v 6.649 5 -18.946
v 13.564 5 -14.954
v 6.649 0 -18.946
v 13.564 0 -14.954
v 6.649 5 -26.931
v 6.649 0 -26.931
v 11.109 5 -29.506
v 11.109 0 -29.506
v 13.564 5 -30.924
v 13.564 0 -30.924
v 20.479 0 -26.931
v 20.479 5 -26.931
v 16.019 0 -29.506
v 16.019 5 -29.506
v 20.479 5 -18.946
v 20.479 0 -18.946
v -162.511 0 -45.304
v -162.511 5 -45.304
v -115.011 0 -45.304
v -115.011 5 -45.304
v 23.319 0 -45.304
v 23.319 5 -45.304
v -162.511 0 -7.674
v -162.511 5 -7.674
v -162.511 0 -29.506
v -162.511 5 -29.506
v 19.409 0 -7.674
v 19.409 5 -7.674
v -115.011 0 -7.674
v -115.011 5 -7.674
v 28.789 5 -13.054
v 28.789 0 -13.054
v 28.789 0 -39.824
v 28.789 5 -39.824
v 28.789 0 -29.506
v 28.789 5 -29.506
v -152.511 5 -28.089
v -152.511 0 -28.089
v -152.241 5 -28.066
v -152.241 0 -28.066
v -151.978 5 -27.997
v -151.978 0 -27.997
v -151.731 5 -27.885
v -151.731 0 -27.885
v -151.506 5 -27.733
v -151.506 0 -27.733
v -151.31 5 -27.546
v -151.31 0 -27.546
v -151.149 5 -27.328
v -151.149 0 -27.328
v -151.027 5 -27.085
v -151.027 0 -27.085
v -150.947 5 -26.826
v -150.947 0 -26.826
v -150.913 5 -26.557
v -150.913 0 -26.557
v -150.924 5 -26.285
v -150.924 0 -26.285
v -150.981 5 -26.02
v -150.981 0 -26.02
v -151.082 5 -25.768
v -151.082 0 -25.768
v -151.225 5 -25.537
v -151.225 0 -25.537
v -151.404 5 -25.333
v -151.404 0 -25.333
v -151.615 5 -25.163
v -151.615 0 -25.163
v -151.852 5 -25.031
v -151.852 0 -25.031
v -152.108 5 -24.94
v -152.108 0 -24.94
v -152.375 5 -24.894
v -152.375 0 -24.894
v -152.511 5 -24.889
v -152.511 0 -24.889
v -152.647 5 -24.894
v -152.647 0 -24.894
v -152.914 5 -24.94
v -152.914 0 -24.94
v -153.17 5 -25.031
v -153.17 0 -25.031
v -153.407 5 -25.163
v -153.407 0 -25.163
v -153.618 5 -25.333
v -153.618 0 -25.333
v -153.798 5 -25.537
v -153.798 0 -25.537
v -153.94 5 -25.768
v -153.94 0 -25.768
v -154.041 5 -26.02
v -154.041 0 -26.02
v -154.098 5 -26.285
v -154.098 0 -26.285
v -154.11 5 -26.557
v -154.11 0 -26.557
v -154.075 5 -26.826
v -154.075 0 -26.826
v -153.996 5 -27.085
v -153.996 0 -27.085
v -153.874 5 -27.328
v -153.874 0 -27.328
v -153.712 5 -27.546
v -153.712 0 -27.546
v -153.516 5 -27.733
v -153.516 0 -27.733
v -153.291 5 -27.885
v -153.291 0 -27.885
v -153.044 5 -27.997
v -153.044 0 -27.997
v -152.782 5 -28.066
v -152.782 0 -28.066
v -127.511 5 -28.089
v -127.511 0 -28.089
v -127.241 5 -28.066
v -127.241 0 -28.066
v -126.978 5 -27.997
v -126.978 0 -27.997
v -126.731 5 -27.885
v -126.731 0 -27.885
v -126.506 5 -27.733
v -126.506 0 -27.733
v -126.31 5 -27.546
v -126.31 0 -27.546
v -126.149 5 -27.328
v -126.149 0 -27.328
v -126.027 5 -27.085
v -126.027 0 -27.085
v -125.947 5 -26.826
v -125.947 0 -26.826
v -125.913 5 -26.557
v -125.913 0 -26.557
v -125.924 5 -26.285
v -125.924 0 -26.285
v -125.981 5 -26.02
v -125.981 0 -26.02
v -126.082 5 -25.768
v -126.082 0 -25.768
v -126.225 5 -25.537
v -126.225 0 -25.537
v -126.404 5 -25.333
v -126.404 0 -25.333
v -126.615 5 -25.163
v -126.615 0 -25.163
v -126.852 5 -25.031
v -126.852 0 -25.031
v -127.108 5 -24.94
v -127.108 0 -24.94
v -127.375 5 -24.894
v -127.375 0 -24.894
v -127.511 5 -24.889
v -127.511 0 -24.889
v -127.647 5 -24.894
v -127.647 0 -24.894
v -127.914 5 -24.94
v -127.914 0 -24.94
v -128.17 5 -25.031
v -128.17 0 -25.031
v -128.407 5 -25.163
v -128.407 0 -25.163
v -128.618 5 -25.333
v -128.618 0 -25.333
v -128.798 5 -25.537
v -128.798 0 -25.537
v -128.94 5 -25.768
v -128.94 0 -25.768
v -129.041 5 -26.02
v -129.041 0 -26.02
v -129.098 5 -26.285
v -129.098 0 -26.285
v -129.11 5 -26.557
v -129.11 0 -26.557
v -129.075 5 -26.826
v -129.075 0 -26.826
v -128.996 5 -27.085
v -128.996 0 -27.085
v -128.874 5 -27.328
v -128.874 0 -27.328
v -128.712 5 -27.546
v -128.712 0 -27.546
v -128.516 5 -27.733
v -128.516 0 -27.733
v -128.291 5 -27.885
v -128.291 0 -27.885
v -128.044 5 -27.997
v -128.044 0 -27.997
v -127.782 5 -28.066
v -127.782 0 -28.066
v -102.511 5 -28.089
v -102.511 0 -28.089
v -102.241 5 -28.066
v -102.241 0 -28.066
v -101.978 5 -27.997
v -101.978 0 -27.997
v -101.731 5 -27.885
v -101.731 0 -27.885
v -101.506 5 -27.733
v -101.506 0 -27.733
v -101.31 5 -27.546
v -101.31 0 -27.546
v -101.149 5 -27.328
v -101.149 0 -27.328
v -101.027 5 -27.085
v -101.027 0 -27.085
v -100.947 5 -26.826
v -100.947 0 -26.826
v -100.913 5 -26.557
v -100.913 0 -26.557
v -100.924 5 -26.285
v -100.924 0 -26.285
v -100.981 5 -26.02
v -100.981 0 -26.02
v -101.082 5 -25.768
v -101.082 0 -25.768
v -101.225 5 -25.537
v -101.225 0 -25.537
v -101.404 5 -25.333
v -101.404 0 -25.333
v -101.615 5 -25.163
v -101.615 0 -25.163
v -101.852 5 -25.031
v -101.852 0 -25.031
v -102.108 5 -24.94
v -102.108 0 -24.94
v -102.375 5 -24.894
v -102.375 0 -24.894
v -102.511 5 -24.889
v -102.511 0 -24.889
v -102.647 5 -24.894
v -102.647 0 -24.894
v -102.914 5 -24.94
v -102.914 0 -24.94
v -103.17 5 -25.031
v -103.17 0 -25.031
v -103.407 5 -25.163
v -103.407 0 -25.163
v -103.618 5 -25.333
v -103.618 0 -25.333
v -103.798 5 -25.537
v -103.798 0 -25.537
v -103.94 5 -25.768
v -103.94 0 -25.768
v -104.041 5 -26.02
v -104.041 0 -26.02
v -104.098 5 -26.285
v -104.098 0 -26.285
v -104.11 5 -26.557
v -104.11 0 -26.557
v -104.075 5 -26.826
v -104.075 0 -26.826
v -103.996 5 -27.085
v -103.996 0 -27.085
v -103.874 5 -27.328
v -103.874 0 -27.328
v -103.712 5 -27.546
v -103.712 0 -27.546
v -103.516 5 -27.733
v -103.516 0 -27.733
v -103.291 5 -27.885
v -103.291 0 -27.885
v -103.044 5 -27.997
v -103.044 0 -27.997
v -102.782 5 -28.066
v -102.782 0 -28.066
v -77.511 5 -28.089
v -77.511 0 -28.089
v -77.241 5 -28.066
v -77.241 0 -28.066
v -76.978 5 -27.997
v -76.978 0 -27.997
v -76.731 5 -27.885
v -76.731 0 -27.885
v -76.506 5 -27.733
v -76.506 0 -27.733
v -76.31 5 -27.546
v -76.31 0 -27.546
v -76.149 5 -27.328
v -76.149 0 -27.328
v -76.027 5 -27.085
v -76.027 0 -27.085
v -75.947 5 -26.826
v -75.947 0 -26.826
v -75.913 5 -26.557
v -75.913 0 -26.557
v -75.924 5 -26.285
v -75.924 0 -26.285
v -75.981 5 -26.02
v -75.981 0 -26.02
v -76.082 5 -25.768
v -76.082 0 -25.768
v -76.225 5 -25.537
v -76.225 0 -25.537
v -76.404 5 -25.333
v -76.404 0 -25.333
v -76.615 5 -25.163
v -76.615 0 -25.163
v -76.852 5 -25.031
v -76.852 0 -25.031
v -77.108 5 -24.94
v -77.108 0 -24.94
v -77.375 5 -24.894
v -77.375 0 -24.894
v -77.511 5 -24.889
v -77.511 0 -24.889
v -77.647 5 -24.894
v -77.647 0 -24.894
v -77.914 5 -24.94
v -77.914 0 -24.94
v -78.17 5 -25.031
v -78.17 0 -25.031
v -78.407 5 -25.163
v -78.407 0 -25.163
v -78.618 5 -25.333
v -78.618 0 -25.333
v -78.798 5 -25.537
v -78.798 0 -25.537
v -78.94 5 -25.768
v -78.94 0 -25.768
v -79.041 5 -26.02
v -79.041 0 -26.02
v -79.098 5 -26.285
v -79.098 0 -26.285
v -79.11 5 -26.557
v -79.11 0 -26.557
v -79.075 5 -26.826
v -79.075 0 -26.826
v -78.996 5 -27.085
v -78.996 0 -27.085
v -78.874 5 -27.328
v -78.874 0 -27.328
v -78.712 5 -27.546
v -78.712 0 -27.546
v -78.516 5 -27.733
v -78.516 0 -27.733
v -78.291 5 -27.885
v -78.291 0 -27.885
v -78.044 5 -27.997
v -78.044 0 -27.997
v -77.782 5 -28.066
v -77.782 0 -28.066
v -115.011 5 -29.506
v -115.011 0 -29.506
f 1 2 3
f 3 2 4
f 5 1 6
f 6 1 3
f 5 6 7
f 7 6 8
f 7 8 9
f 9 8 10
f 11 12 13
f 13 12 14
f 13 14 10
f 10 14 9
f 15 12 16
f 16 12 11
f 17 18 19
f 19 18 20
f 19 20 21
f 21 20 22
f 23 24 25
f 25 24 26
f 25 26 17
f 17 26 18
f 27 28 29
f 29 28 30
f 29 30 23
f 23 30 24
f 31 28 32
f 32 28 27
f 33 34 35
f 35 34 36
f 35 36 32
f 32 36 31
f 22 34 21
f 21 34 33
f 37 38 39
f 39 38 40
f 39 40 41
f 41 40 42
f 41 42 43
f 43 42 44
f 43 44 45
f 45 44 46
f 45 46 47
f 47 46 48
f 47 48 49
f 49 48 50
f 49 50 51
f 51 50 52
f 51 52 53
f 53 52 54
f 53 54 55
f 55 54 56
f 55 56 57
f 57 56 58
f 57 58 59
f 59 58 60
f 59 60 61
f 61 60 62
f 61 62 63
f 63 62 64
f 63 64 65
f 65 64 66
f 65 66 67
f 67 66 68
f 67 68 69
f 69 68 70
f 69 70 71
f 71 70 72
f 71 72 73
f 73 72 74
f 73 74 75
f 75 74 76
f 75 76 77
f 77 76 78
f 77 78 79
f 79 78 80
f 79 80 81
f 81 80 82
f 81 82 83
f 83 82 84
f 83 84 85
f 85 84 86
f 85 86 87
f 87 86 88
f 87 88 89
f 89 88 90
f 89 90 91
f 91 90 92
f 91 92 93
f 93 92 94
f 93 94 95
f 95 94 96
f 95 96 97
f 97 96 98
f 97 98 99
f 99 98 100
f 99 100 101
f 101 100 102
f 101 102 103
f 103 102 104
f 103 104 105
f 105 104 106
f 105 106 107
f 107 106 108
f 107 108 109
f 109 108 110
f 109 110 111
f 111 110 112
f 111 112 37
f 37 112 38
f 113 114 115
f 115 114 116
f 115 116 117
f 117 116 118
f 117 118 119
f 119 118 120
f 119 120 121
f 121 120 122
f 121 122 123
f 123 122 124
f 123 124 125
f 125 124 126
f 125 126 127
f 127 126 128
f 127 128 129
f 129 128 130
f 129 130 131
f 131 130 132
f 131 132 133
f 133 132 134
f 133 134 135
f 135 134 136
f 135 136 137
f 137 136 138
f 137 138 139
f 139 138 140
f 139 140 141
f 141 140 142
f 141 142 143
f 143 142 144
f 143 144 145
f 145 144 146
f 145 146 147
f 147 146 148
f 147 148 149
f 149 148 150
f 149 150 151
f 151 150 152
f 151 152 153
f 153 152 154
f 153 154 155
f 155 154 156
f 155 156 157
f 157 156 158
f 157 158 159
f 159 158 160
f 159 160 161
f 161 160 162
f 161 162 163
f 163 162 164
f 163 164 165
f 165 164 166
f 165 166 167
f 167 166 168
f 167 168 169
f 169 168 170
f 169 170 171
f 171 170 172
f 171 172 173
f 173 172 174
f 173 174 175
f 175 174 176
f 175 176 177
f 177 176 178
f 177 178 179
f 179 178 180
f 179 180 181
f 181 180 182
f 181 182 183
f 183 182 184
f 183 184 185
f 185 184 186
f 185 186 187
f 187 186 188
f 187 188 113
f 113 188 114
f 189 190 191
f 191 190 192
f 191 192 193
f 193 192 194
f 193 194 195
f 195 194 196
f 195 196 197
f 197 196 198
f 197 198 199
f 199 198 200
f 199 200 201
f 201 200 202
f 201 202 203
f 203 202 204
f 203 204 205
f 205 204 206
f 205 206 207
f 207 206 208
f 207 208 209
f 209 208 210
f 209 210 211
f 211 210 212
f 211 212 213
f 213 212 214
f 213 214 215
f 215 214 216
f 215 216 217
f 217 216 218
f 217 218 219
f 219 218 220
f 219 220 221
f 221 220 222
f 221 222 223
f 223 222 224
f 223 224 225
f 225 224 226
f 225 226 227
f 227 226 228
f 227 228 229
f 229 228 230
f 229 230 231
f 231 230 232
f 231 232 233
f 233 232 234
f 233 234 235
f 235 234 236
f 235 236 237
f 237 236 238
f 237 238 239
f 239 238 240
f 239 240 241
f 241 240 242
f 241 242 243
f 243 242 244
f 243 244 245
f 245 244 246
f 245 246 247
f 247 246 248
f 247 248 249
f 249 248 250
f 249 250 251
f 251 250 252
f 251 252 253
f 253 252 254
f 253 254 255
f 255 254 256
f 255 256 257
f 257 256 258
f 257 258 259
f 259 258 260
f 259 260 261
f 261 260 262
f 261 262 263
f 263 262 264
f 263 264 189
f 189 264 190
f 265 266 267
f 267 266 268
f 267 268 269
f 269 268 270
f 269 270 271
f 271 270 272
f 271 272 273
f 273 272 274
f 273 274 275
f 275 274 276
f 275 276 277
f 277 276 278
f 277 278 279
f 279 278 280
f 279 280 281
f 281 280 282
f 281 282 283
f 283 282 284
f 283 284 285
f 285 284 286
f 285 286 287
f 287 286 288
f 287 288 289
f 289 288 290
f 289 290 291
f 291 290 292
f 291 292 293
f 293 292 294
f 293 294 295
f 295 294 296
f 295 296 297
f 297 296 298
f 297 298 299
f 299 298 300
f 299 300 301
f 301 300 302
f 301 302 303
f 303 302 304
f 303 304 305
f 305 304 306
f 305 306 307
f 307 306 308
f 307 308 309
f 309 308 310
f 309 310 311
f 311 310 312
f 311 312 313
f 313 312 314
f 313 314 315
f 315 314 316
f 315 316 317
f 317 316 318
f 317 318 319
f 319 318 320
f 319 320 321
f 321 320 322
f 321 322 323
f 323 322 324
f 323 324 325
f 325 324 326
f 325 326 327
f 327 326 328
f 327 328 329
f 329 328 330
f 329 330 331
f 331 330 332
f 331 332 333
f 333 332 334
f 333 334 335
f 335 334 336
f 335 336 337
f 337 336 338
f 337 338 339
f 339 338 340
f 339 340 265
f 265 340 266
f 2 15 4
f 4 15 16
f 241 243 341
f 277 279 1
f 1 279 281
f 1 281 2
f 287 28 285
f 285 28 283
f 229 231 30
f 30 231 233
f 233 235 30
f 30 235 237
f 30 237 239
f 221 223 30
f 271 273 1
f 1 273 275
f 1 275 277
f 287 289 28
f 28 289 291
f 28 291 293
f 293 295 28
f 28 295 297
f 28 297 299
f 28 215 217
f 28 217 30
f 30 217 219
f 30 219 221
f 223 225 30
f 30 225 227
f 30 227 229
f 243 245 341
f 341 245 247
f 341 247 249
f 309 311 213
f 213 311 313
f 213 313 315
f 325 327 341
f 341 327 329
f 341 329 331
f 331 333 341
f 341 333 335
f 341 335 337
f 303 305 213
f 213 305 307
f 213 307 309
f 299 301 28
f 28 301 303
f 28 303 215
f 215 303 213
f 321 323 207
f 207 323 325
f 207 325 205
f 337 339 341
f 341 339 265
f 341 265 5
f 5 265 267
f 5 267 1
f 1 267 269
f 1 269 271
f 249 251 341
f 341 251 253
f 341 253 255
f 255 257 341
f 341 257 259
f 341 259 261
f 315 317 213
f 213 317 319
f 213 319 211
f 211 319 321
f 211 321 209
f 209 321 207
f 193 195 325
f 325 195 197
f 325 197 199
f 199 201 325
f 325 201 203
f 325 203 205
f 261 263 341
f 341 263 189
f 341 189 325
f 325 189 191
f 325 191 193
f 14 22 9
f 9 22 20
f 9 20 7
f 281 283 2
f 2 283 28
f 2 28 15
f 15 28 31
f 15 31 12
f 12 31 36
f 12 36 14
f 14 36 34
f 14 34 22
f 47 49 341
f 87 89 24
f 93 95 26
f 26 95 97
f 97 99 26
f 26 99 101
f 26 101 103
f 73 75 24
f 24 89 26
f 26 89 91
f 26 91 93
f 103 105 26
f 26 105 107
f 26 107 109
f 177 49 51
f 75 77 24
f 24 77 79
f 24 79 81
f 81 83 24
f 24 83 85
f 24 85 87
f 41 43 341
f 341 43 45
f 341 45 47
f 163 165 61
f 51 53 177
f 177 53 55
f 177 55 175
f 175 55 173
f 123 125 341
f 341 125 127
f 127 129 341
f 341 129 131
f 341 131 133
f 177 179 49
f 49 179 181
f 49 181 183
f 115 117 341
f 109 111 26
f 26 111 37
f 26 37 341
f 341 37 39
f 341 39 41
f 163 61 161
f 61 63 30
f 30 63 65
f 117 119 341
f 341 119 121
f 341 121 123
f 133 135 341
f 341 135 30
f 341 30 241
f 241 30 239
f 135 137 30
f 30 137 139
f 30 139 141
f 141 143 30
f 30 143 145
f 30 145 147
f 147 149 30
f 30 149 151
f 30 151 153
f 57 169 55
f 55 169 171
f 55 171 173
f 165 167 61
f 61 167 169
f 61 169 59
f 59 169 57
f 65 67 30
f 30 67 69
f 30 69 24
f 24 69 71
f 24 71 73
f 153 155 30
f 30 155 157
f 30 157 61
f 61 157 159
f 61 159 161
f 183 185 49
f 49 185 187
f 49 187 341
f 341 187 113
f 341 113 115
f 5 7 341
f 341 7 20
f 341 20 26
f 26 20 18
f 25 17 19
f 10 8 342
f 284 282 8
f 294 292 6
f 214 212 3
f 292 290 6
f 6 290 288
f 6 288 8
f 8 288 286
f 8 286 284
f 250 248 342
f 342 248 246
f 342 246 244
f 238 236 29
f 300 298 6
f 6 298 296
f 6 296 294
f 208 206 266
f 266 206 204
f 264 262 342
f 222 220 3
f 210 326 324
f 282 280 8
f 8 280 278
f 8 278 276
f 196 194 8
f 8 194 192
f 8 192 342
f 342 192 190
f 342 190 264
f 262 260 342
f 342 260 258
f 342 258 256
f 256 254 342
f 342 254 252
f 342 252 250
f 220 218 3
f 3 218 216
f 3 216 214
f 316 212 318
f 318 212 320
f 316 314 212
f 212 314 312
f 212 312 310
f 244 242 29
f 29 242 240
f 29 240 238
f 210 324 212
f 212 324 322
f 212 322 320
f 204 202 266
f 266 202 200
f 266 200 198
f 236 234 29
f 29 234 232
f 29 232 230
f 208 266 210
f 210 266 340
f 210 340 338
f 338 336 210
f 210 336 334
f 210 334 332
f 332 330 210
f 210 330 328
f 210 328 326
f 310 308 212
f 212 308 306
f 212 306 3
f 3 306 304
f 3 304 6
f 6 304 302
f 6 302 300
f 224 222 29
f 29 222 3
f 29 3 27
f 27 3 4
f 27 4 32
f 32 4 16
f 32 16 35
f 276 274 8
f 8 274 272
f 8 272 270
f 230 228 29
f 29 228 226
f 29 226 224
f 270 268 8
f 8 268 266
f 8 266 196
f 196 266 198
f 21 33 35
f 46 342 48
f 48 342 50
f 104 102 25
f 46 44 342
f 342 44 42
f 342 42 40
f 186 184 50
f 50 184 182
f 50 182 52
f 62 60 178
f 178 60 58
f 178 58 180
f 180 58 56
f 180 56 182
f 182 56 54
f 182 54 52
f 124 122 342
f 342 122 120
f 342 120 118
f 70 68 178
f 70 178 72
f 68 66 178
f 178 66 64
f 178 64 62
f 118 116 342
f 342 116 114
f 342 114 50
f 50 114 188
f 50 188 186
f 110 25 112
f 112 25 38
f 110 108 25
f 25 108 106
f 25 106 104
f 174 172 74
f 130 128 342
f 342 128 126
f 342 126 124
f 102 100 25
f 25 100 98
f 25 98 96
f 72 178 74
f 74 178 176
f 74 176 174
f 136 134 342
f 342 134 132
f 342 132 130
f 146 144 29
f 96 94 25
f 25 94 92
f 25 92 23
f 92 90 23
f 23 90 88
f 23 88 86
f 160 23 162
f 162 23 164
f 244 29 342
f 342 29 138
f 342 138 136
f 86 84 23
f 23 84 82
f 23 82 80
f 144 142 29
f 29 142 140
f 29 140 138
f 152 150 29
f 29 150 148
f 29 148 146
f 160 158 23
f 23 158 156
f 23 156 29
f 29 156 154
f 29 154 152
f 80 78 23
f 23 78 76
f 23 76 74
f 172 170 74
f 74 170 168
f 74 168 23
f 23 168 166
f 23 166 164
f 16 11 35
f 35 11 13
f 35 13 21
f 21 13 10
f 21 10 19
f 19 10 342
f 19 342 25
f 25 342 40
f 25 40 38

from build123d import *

# Parameters (mm, degrees)
SKETCH1_W           = 144.53
SKETCH1_H           = 37.629508446
SKETCH1_R           = 1.6
BOSS_EXTRUDE1_DEPTH = 5


with BuildPart() as part:
    # Sketch1 → Boss-Extrude1 (new body)
    # profile 1 of 2: a face of its own
    with BuildSketch(Plane(origin=(0, 0, 0), x_dir=(1, 0, 0), z_dir=(0, 1, 0))):
        with Locations((-90.246144653, 26.488873013)):
            Rectangle(SKETCH1_W, SKETCH1_H)
        with Locations(Location((-77.511144653, 26.488627236, 0), (0, 0, 270))):
            Circle(SKETCH1_R, mode=Mode.SUBTRACT)
        with Locations(Location((-102.511144653, 26.488627236, 0), (0, 0, 270))):
            Circle(SKETCH1_R, mode=Mode.SUBTRACT)
        with Locations(Location((-127.511144653, 26.488627236, 0), (0, 0, 270))):
            Circle(SKETCH1_R, mode=Mode.SUBTRACT)
        with Locations(Location((-152.511144653, 26.488627236, 0), (0, 0, 270))):
            Circle(SKETCH1_R, mode=Mode.SUBTRACT)
    # profile 2 of 2: a face of its own
    with BuildSketch(Plane(origin=(0, 0, 0), x_dir=(1, 0, 0), z_dir=(0, 1, 0))):
        Polygon((28.788855347, 39.823627236), (23.318855347, 45.303627236), (-17.981144653, 45.303627236), (-17.981144653, 7.67411879), (19.408855347, 7.67411879), (28.788855347, 13.053627236), align=None)
        Polygon((20.478855347, 18.946495902), (13.563855347, 14.95411879), (6.648855347, 18.946495902), (6.648855347, 26.931250125), (13.563855347, 30.923627236), (20.478855347, 26.931250125), align=None, mode=Mode.SUBTRACT)
    extrude(amount=BOSS_EXTRUDE1_DEPTH)


solid = part.part
